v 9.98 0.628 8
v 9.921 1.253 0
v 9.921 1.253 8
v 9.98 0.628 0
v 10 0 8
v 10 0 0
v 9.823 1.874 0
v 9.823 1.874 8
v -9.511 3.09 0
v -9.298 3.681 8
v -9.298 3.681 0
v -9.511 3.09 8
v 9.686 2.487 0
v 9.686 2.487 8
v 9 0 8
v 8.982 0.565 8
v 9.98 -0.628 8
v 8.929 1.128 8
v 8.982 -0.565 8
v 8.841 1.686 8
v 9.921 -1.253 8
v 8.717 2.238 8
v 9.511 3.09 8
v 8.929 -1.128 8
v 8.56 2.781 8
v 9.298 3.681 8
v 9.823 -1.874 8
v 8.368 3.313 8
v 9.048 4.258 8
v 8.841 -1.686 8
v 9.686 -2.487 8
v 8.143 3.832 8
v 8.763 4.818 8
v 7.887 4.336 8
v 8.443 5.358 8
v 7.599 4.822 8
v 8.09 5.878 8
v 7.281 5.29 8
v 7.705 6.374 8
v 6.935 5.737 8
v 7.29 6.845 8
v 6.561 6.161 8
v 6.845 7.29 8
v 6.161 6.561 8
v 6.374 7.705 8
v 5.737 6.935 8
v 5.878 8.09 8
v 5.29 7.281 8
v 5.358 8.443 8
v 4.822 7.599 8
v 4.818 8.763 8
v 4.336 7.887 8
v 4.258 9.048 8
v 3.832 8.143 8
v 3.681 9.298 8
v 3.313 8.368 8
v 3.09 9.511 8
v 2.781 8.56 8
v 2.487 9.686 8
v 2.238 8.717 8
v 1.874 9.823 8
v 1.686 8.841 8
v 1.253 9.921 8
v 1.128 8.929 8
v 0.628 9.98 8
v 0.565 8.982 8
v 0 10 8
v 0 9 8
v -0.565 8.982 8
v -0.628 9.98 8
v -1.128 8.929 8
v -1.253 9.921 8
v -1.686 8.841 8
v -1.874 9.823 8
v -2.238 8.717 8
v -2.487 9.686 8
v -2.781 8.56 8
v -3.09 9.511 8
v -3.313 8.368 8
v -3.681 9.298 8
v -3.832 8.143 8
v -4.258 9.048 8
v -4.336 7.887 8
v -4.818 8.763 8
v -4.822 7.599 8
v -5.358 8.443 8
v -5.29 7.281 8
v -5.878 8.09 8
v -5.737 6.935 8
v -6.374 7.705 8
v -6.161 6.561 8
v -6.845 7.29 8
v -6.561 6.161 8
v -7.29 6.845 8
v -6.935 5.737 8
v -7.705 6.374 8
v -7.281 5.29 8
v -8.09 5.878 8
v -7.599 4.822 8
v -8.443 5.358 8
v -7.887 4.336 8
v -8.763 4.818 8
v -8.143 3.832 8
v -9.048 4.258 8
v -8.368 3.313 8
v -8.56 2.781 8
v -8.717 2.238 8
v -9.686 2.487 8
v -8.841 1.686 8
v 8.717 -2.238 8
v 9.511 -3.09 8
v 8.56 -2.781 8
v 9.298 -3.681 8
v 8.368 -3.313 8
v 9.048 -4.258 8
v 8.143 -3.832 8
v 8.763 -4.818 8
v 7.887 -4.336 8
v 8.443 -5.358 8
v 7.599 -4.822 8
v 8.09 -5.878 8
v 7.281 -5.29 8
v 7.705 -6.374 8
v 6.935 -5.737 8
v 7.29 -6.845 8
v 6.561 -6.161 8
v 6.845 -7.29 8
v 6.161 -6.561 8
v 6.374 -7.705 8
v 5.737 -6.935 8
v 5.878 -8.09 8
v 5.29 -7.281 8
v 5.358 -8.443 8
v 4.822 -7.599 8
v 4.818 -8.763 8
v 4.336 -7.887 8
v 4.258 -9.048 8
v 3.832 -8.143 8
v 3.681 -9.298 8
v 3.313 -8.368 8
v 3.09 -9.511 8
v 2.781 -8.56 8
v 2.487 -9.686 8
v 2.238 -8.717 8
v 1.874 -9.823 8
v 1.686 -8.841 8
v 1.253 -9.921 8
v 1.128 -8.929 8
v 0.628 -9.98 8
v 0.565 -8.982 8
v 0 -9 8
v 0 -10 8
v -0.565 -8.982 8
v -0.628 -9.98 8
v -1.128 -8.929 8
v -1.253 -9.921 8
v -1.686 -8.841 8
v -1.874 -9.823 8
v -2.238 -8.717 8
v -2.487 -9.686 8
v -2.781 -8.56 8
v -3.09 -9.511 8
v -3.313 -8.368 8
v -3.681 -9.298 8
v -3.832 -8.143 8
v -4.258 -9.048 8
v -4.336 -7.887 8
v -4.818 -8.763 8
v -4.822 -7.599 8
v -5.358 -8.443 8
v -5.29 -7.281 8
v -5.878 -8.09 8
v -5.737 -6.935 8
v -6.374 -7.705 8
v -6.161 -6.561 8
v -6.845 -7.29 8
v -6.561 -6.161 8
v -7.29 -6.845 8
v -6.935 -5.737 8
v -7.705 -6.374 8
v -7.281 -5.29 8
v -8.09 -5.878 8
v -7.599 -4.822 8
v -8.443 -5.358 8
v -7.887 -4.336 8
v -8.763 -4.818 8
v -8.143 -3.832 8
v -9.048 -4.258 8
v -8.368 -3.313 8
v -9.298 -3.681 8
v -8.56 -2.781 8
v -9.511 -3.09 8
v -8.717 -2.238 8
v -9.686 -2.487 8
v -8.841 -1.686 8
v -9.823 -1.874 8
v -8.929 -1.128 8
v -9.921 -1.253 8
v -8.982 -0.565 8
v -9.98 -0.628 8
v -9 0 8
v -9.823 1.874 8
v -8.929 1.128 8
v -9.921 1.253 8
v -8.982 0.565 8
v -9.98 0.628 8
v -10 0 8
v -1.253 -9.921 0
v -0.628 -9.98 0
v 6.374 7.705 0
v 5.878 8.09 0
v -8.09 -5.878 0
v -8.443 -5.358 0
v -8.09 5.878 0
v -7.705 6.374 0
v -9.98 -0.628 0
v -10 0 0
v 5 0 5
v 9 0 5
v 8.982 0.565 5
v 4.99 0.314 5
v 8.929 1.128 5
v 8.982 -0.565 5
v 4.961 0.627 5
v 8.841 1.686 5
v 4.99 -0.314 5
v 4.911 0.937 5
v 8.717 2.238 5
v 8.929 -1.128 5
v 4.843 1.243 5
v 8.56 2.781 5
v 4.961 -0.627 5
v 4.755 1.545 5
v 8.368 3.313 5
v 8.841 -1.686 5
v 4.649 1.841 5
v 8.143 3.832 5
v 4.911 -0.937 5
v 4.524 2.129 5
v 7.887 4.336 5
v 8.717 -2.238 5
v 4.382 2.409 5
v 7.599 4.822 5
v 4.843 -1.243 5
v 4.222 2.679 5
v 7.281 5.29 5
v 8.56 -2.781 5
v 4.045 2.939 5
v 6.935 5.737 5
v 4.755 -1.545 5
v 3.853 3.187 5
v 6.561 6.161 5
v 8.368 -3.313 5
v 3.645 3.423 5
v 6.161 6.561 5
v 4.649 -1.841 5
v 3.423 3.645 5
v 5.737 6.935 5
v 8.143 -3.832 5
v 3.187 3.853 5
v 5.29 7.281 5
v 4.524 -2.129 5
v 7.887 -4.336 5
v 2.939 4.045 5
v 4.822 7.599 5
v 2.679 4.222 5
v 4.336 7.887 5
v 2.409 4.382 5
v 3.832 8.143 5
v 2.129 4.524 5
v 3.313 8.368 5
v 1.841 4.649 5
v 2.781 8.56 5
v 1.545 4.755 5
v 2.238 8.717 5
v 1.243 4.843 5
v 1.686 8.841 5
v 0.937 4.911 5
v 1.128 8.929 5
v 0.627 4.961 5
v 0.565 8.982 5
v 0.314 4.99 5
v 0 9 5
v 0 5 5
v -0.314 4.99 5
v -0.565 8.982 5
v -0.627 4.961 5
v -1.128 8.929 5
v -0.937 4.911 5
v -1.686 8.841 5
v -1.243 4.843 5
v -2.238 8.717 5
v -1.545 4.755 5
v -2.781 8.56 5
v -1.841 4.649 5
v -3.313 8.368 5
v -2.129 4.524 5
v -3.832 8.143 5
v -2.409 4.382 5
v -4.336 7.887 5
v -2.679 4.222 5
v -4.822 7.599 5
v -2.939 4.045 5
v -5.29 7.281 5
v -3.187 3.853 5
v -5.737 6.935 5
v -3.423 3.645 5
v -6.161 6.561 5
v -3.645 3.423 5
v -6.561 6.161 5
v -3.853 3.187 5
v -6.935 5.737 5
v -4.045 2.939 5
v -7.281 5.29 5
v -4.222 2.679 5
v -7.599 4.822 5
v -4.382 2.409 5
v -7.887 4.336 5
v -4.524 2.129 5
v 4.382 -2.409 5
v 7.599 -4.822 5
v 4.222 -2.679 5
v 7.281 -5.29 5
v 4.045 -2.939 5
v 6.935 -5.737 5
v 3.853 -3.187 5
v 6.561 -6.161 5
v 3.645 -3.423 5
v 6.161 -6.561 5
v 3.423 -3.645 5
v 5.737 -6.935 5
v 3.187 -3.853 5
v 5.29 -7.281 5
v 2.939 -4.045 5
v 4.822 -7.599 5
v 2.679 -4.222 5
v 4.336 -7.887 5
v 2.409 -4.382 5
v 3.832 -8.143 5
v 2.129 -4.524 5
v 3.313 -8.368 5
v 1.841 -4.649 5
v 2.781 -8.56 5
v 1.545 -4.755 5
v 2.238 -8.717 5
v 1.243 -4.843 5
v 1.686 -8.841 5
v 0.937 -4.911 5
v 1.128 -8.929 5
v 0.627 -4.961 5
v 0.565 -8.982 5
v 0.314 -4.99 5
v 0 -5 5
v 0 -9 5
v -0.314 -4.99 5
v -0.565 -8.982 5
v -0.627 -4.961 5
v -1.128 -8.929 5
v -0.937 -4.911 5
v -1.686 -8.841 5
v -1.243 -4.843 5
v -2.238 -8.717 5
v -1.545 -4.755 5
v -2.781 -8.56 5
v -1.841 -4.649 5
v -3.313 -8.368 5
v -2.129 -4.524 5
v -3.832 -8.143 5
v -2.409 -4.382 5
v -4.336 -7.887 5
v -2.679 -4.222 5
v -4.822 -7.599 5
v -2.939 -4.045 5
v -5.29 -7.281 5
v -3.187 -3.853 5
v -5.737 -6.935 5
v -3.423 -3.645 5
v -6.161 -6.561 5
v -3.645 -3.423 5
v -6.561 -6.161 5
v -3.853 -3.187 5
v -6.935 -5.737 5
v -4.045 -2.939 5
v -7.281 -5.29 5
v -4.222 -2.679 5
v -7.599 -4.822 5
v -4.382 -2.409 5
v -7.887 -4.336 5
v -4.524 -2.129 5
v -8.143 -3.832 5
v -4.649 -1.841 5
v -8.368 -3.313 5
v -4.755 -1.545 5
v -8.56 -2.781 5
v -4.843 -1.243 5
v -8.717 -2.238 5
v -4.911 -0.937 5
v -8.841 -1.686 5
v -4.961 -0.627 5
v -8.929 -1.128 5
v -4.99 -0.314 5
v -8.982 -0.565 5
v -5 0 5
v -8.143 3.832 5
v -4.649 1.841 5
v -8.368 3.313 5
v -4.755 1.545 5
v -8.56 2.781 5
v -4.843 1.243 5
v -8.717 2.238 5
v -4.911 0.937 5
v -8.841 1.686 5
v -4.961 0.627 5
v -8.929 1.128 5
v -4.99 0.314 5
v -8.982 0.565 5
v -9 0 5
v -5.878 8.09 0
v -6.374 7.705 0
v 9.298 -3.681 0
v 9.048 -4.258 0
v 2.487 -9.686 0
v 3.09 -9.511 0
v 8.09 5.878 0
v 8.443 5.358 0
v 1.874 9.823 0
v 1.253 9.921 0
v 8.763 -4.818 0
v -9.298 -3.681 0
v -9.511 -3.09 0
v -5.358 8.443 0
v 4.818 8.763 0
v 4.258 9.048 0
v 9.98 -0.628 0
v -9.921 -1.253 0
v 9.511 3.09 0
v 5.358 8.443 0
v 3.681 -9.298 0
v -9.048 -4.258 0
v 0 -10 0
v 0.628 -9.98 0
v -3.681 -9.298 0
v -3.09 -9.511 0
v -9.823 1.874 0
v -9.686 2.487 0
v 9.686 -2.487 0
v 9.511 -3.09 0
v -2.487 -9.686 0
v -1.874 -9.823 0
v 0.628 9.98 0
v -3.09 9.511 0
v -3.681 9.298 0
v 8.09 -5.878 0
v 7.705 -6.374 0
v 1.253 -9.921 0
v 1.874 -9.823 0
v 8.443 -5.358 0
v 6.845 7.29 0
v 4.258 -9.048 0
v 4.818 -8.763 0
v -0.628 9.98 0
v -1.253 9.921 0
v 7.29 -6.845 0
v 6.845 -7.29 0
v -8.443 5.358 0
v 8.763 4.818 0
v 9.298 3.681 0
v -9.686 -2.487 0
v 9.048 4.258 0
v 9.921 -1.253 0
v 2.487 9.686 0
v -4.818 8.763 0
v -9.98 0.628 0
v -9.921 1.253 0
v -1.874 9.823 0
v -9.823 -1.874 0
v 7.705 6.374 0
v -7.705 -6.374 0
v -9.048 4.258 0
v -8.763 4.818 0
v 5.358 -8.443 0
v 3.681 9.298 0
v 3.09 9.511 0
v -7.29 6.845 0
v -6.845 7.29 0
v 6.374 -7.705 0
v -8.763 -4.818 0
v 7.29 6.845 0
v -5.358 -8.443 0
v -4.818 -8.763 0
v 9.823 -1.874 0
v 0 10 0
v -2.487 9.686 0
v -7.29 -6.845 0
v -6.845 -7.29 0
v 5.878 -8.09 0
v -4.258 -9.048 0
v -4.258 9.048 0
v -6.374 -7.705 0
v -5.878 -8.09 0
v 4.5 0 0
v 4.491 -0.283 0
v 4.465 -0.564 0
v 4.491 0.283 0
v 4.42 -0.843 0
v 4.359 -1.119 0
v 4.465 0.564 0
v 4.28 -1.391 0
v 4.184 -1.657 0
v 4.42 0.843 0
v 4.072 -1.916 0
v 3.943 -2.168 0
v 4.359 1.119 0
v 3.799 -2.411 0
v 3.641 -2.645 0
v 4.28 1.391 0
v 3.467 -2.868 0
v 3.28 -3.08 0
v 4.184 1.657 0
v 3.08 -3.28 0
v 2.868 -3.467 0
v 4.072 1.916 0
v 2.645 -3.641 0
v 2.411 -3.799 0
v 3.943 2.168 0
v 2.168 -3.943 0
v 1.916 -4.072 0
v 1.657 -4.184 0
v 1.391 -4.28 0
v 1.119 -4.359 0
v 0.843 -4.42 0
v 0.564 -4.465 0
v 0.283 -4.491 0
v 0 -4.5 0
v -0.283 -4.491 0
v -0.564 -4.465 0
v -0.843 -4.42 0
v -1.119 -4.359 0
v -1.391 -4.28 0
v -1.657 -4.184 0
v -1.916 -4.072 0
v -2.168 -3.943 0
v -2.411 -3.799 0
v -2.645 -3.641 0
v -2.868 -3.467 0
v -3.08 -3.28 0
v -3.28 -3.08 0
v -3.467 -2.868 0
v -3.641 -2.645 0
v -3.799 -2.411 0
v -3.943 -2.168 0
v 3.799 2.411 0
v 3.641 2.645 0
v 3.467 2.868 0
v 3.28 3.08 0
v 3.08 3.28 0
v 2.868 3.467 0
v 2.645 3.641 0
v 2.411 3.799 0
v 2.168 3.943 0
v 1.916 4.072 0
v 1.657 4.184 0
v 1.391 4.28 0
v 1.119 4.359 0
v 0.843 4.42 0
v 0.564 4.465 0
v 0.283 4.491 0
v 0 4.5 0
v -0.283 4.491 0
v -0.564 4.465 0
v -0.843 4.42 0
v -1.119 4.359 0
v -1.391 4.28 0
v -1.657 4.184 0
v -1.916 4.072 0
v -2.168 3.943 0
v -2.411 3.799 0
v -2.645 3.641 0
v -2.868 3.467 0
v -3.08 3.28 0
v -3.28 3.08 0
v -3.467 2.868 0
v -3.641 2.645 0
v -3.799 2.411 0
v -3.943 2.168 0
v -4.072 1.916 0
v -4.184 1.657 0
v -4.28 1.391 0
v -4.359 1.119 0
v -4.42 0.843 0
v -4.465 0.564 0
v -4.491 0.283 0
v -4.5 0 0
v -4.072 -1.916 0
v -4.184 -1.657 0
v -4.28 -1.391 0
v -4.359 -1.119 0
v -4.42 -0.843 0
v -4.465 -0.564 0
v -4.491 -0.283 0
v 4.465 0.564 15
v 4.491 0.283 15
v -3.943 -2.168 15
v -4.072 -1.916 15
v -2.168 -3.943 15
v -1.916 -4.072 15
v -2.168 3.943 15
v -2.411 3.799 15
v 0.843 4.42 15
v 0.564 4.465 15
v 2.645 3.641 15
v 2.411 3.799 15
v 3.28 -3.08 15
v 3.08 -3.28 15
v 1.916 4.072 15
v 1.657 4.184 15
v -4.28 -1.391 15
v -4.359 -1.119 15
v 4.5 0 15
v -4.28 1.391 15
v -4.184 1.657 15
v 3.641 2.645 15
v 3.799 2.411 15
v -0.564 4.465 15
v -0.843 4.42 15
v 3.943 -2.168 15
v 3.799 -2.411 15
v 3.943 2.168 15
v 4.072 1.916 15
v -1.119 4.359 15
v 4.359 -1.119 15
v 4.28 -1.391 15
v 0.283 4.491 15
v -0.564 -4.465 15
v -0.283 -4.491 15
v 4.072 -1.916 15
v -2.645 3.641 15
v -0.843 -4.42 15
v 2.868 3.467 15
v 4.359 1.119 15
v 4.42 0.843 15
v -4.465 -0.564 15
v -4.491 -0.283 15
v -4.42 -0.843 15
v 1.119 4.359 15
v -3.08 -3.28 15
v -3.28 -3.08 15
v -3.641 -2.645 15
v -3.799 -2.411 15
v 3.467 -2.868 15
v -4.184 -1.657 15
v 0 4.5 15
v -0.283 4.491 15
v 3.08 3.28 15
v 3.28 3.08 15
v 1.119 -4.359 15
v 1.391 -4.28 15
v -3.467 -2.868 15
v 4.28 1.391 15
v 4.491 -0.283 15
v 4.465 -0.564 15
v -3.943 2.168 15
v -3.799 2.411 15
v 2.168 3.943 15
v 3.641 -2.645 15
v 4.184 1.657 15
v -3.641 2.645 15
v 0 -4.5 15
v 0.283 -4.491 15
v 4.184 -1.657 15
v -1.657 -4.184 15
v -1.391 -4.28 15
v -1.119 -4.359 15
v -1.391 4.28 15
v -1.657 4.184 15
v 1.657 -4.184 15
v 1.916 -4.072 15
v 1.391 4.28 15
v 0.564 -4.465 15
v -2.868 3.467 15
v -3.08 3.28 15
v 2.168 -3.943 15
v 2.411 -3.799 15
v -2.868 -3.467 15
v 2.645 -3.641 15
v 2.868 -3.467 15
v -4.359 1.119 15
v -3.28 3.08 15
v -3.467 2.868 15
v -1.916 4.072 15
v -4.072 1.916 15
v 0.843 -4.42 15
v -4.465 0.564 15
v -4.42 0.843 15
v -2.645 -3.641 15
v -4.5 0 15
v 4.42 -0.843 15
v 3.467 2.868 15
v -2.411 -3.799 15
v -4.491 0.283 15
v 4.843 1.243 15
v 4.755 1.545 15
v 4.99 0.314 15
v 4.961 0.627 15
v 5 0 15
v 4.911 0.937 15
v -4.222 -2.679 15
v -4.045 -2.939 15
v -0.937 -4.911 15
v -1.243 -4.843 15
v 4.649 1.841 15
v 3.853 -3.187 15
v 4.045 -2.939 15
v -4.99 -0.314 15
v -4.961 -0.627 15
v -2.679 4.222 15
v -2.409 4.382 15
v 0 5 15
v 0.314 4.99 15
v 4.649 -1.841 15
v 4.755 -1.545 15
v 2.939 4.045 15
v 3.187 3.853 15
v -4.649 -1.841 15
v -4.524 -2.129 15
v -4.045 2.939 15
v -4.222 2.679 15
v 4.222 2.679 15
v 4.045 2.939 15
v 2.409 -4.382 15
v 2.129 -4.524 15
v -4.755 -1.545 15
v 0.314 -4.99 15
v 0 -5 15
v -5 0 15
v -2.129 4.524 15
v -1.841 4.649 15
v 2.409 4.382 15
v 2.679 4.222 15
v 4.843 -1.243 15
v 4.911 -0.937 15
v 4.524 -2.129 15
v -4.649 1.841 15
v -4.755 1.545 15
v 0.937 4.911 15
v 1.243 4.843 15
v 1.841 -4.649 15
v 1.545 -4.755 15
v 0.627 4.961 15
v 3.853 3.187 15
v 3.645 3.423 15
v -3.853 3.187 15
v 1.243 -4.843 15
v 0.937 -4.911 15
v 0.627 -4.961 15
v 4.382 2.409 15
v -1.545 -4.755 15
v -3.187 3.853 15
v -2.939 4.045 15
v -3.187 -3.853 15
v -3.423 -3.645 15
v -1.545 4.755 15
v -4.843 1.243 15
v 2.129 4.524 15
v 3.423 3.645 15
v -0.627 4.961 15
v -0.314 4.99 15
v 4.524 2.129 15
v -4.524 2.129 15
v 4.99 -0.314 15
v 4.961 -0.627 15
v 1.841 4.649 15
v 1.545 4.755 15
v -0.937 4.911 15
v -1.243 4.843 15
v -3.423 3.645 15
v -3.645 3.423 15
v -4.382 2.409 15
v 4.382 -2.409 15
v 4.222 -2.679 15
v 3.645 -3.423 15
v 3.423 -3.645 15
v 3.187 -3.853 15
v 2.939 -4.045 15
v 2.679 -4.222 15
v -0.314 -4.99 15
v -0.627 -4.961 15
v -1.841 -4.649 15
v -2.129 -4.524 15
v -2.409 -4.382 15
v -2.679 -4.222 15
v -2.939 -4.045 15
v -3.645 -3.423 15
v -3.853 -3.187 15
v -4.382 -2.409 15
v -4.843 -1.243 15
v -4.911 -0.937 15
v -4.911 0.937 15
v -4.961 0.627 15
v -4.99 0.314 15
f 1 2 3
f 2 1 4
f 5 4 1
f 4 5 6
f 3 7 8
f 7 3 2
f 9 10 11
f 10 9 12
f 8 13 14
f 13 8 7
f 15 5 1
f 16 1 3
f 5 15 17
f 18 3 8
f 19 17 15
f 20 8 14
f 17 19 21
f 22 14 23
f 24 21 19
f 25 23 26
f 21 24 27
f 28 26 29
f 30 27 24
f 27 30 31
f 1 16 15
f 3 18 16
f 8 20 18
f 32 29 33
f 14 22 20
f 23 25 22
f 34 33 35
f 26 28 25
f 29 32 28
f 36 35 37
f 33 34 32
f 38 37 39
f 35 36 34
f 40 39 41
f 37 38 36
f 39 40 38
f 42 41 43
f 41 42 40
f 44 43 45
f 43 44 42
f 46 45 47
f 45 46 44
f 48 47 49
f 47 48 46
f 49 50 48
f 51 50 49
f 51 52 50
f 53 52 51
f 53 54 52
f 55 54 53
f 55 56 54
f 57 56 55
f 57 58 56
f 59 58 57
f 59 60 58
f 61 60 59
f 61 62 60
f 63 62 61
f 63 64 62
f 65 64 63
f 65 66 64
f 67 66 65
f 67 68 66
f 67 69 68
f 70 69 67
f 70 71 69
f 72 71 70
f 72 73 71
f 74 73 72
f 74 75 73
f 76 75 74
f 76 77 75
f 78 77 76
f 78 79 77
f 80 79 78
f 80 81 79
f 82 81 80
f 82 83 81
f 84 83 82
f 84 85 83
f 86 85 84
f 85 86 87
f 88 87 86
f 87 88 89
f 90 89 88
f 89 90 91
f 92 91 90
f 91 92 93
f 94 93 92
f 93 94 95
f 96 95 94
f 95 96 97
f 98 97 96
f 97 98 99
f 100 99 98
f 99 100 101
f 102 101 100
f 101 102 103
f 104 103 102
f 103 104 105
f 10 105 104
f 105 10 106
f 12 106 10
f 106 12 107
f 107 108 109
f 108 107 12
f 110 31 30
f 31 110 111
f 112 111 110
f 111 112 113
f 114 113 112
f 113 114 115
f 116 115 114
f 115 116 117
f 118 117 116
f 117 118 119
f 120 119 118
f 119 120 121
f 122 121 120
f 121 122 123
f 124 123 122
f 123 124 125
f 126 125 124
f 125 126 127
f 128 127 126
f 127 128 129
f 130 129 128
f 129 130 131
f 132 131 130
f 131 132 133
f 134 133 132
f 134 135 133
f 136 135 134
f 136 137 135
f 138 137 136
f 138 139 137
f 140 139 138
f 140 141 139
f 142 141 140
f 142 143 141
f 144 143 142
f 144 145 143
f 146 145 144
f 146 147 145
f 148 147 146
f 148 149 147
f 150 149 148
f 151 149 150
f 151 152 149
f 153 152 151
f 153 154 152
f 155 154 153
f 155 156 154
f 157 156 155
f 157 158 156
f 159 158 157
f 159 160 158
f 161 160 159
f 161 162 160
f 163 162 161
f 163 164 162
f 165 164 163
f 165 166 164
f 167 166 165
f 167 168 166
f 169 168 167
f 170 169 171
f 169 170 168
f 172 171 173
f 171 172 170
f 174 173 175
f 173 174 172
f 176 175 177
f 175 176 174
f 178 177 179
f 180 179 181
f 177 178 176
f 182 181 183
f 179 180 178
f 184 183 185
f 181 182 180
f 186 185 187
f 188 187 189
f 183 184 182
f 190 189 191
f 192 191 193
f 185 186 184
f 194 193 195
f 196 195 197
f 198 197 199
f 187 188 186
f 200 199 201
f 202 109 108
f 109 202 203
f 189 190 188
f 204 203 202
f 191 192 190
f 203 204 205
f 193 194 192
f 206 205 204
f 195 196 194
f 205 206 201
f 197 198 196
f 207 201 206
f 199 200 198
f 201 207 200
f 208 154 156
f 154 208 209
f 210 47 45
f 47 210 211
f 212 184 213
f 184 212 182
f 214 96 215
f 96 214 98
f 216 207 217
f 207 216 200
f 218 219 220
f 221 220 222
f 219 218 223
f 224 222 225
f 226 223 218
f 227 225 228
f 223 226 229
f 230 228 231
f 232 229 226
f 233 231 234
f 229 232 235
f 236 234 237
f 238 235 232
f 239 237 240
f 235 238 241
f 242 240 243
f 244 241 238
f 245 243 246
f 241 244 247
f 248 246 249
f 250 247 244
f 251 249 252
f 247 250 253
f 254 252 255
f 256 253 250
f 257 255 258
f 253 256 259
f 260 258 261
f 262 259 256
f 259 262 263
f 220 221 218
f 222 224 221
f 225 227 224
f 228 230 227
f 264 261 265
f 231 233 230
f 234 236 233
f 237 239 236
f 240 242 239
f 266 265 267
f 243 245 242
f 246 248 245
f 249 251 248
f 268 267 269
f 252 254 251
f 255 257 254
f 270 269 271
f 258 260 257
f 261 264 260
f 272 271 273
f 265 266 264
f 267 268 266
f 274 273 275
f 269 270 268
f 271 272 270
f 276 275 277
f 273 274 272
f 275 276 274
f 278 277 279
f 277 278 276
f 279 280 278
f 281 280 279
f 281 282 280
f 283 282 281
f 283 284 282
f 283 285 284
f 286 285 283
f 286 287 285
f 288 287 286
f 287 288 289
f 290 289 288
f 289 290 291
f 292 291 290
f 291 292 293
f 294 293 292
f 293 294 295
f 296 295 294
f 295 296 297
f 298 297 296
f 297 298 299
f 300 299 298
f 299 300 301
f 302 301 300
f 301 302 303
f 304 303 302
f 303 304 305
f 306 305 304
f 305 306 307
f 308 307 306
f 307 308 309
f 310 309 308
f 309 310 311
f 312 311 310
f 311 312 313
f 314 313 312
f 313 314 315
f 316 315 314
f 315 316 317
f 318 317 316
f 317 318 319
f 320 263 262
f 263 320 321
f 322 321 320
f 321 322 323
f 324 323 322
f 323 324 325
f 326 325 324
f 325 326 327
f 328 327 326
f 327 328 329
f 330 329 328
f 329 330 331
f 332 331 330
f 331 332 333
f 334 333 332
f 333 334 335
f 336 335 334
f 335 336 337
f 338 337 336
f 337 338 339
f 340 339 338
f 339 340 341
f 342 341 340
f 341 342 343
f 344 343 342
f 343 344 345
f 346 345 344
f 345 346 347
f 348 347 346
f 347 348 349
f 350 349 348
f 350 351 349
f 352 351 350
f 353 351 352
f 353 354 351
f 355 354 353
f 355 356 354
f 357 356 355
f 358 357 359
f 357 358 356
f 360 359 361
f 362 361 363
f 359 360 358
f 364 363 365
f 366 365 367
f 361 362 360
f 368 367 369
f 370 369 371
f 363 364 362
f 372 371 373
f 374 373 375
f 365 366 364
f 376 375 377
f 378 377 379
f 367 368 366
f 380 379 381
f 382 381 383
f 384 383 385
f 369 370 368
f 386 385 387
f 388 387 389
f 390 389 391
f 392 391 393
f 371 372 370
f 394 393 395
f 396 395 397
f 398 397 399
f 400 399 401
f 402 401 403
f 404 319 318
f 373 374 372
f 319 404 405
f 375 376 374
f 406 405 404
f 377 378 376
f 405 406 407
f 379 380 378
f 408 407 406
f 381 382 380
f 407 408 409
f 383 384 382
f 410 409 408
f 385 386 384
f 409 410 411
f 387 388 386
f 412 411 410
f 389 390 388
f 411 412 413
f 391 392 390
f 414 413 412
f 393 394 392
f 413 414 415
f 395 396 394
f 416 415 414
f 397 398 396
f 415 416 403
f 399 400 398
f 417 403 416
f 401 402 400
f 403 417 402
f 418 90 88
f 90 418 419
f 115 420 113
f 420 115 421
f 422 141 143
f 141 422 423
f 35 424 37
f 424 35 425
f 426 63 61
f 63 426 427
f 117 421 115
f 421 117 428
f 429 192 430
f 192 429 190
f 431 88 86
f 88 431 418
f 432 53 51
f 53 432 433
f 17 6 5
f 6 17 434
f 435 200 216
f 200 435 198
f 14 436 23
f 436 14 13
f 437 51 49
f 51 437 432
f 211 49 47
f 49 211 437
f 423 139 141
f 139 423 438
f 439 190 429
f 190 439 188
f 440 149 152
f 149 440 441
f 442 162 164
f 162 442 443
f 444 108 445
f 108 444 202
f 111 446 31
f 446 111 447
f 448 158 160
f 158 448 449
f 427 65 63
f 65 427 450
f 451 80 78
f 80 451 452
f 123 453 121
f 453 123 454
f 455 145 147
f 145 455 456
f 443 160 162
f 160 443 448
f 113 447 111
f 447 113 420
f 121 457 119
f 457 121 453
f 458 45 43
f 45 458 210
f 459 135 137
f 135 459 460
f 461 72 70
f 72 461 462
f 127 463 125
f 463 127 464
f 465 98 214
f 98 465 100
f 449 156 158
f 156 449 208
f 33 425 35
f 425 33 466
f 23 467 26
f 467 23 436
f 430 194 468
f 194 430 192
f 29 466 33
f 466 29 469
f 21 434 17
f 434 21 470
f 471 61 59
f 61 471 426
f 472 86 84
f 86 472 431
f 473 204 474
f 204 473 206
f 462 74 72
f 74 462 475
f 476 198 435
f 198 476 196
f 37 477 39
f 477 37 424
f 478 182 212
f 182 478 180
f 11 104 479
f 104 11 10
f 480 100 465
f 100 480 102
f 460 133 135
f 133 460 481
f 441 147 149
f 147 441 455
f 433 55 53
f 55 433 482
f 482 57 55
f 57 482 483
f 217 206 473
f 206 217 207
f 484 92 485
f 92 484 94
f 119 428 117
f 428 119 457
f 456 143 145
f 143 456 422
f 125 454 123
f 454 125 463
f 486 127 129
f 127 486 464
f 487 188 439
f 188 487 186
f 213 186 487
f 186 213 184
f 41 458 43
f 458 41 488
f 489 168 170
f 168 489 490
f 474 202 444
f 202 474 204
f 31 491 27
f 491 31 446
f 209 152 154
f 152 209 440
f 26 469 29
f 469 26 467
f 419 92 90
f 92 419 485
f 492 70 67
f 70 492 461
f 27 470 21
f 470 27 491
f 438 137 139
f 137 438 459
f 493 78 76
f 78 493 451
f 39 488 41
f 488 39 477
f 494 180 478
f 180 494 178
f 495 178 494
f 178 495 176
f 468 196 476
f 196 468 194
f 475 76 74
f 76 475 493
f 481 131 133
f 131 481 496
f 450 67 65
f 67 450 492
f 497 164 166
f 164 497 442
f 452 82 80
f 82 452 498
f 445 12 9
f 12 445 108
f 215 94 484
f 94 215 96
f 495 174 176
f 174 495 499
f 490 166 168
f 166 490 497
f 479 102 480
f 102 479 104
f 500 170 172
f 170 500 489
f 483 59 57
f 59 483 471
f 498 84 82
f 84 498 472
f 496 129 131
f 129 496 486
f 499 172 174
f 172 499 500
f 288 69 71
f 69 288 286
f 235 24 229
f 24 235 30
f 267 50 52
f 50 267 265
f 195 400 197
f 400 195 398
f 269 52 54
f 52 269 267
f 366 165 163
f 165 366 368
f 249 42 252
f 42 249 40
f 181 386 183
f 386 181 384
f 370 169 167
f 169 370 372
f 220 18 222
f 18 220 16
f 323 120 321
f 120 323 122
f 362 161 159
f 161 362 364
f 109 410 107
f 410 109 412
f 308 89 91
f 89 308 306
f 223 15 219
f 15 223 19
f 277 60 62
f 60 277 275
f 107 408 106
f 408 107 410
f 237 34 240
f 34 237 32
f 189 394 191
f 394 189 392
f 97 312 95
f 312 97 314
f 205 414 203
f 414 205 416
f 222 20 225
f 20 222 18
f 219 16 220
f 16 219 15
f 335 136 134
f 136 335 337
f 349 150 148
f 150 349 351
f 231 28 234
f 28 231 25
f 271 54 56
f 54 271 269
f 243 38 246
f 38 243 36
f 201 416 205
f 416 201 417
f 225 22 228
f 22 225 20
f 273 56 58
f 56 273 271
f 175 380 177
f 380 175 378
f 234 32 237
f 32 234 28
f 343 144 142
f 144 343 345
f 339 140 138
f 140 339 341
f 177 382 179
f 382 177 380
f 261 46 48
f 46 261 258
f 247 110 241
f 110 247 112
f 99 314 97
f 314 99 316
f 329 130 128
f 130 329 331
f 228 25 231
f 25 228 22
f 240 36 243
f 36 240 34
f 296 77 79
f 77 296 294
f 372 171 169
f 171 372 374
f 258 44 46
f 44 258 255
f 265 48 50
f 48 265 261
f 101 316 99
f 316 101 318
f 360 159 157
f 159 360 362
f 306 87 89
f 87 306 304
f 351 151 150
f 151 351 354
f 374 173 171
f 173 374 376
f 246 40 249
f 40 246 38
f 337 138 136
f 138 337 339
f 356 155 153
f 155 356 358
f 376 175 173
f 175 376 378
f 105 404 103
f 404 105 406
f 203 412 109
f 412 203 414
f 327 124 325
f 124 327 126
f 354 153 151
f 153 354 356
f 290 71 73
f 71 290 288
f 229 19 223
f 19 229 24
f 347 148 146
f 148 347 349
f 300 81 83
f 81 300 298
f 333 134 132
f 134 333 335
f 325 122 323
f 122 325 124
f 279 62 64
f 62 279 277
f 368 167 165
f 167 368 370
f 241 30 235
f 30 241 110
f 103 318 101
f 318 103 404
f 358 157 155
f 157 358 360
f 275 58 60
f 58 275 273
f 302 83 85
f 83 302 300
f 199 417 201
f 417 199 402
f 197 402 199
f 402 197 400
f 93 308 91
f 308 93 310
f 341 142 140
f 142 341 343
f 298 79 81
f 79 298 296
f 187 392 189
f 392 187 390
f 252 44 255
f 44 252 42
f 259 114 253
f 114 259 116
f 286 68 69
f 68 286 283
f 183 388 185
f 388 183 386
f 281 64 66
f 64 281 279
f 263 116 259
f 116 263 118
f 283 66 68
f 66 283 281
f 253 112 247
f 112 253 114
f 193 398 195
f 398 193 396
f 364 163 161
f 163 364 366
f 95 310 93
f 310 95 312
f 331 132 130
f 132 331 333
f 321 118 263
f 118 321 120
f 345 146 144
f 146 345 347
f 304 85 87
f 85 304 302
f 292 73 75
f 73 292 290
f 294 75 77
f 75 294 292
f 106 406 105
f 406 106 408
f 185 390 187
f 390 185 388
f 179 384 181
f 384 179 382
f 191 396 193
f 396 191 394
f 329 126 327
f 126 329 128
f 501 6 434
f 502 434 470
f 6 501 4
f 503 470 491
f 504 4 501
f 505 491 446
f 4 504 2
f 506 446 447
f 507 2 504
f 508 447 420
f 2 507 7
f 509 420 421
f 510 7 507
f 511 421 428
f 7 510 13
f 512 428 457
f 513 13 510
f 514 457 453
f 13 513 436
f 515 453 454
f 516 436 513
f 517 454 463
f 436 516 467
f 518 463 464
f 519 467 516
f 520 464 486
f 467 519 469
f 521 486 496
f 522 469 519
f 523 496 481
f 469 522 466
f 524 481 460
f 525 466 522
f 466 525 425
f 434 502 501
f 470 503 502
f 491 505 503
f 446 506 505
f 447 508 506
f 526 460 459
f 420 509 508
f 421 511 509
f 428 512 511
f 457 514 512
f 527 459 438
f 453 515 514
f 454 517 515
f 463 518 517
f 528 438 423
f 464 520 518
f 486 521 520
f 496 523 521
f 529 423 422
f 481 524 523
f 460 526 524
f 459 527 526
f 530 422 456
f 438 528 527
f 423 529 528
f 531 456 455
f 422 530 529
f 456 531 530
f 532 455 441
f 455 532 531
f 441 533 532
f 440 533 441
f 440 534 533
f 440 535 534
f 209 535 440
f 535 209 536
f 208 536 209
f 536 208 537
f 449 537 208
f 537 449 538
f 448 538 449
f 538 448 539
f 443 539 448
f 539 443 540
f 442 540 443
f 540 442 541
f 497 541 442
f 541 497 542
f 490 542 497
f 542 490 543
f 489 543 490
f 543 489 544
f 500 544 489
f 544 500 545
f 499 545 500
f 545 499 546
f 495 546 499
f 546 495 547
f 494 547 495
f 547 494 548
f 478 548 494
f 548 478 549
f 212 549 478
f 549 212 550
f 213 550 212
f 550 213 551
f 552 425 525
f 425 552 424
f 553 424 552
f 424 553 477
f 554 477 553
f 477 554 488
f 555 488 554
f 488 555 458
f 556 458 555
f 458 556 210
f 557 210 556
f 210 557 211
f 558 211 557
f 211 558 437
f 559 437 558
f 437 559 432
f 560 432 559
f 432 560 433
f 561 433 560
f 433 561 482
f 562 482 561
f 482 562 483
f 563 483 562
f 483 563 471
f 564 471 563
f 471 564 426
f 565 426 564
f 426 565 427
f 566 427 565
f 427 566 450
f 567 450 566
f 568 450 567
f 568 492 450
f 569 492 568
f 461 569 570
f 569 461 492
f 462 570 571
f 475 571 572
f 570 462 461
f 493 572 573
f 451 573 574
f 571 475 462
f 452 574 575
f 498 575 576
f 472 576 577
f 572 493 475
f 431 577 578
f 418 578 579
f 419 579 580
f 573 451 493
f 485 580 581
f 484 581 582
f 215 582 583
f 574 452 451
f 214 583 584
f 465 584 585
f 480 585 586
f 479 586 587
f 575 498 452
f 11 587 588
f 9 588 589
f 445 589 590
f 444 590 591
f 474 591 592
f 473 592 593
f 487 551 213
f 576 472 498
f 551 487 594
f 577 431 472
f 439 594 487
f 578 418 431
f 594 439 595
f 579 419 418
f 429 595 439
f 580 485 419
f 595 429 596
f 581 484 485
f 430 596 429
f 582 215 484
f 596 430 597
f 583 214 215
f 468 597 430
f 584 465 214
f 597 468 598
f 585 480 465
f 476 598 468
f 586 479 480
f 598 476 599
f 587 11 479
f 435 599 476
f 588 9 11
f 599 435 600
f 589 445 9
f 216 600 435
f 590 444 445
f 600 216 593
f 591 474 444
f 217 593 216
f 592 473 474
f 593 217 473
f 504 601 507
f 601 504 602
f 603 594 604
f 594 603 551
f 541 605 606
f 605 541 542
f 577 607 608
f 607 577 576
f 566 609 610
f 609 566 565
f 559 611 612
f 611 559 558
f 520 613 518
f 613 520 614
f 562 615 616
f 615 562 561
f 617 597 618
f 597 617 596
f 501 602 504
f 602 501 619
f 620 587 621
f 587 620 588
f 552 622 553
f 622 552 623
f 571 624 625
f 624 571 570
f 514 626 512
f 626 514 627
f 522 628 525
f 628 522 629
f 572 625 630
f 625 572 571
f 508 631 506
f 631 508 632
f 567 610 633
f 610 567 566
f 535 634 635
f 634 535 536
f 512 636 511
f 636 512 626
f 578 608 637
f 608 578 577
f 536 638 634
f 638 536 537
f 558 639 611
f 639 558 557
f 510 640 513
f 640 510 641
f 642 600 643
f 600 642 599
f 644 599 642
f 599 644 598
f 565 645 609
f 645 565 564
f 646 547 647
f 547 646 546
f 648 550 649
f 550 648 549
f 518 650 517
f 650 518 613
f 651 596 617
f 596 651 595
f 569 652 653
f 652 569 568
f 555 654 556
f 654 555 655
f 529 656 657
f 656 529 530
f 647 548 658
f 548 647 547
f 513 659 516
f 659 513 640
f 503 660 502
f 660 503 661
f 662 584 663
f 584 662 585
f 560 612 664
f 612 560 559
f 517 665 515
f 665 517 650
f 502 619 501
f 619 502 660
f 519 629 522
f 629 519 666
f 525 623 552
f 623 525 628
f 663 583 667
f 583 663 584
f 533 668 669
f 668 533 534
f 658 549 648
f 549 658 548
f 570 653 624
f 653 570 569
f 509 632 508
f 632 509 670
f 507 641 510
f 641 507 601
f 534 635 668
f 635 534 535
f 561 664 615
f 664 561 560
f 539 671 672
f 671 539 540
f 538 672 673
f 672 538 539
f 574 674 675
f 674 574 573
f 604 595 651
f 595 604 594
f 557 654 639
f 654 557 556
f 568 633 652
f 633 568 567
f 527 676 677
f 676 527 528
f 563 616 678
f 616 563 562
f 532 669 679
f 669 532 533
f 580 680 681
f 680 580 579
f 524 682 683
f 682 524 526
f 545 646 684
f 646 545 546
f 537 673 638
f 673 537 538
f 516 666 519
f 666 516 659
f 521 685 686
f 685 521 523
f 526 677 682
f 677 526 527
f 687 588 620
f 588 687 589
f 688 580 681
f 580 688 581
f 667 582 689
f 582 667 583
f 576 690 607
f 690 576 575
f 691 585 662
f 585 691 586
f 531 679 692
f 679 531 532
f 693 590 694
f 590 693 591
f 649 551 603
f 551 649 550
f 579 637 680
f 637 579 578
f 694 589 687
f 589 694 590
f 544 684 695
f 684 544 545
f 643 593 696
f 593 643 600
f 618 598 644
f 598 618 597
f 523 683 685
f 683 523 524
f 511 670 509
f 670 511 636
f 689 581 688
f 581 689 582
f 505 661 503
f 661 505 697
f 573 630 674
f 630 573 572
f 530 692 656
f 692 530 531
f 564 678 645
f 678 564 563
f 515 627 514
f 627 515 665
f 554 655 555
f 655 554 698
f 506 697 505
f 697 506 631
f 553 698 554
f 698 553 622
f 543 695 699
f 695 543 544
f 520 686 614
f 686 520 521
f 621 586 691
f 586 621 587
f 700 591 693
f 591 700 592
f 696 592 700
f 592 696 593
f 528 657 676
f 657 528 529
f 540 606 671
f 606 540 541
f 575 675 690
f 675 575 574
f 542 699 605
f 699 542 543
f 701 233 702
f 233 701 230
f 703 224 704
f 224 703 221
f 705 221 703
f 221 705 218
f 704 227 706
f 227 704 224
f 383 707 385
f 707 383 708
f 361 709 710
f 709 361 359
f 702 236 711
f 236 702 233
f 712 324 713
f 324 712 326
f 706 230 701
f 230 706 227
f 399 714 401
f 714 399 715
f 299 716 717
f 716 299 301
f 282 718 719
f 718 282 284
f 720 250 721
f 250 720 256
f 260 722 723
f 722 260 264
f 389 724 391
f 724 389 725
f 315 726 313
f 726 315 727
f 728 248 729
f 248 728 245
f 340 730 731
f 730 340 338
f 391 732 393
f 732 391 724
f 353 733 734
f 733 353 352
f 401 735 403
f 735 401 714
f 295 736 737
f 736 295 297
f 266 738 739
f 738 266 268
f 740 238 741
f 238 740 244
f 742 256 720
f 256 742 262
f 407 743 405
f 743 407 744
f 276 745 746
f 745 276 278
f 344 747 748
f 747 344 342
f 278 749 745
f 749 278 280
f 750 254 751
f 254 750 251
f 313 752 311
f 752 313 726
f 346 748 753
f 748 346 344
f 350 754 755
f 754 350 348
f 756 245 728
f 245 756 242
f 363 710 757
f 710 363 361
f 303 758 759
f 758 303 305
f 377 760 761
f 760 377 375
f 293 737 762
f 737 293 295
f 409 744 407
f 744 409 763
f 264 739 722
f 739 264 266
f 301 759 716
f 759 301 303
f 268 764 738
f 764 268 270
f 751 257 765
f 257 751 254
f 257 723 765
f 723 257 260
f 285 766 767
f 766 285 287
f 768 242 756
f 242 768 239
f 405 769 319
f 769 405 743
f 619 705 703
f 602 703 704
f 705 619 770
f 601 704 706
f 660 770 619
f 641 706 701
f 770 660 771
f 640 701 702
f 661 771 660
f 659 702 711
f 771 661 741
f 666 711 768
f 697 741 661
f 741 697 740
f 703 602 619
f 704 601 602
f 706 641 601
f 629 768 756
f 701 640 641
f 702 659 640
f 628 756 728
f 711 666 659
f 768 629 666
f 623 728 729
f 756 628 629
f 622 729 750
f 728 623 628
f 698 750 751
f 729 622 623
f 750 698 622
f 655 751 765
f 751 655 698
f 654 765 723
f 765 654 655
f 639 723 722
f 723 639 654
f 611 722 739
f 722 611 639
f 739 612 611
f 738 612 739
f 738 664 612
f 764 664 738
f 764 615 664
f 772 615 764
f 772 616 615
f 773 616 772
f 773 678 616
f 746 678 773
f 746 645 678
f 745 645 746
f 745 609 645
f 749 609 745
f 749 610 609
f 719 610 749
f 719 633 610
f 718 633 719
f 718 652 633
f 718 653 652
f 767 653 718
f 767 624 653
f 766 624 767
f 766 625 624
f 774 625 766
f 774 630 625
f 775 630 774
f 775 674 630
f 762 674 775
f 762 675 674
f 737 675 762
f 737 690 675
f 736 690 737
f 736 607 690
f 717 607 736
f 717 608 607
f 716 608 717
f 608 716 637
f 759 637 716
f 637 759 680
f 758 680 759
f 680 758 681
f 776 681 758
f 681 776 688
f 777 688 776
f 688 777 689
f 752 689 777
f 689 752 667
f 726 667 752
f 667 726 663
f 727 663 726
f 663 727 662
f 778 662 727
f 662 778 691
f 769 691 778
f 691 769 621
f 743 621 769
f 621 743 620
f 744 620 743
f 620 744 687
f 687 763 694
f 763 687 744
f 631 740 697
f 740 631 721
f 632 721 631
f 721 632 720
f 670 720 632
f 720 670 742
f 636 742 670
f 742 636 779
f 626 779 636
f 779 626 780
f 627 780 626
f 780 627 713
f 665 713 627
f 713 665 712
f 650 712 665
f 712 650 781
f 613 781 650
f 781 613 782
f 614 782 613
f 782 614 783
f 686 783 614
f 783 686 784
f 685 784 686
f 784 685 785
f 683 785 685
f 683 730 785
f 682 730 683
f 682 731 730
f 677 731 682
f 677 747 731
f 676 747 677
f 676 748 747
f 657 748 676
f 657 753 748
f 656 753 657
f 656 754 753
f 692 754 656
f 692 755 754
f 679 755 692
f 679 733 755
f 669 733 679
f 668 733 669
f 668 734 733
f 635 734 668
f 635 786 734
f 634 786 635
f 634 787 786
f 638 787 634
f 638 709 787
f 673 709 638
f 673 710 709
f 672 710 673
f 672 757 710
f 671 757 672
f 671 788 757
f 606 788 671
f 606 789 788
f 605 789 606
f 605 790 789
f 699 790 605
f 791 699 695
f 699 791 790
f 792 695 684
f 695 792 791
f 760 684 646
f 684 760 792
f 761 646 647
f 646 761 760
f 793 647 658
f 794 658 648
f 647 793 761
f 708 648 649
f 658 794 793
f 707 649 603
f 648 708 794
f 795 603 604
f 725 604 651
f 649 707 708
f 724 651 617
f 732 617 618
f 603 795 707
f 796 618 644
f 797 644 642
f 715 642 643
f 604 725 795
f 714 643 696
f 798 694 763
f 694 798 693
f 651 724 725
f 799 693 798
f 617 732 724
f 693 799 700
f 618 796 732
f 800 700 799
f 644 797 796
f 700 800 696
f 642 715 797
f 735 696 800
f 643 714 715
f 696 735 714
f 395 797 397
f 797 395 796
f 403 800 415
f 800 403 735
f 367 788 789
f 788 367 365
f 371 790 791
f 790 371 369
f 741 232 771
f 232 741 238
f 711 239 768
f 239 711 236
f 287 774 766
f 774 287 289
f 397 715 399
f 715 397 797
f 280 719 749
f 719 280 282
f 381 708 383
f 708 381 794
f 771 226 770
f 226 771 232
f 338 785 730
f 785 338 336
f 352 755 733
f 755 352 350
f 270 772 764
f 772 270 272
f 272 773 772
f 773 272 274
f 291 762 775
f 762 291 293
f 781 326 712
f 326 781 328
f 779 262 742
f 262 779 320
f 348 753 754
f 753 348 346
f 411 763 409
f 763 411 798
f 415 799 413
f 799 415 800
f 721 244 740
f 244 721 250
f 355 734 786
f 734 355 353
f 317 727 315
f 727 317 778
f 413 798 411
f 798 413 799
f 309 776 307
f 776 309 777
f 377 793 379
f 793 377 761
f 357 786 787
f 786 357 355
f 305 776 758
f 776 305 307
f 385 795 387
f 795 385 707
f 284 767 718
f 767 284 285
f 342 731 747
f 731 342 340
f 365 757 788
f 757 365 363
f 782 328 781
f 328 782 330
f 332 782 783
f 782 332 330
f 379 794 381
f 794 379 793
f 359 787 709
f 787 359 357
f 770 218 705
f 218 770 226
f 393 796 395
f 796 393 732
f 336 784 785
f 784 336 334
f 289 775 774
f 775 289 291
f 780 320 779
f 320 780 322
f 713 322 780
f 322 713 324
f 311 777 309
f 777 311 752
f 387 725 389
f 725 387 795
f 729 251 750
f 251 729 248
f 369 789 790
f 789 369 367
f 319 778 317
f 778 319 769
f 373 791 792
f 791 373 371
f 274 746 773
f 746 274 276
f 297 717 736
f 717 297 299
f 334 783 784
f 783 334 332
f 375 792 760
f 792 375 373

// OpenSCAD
/*
    Design of an adapter to fill ciss tanks using Epson 102 series or similar
    
    The idea is to remove the cap of the ink tank we want to refill, position the adapter and then place the bottle to fill. Lift the bottle once the desired ink level has been reached.
    Ideally, there should be an adapter per ink colour, which should be washed with water and dried after use.
    
    ©Filippo Falezza 2022, released under GPLv3 and followings
    
    Scale= 1unit/1mm
*/

//need to cut it in lower cylinder and upper structure due to printing limitations
//higher structure
$fn=100;

//main upper cylinder
difference(){
translate([0,0,0])
cylinder(h = 5, d=20);

translate([0,0,-1])
cylinder(h=7,d=9);

}

//small edge
difference(){
translate([0,0,5])
cylinder(h = 3, d=20);
translate([0,0,4])
    cylinder(h=5, d=18);
}

//upper cylinder
difference(){
translate([0,0,5])
cylinder(h=10,d=10);

translate([0,0,4])
cylinder(h=12,d=9);
}
